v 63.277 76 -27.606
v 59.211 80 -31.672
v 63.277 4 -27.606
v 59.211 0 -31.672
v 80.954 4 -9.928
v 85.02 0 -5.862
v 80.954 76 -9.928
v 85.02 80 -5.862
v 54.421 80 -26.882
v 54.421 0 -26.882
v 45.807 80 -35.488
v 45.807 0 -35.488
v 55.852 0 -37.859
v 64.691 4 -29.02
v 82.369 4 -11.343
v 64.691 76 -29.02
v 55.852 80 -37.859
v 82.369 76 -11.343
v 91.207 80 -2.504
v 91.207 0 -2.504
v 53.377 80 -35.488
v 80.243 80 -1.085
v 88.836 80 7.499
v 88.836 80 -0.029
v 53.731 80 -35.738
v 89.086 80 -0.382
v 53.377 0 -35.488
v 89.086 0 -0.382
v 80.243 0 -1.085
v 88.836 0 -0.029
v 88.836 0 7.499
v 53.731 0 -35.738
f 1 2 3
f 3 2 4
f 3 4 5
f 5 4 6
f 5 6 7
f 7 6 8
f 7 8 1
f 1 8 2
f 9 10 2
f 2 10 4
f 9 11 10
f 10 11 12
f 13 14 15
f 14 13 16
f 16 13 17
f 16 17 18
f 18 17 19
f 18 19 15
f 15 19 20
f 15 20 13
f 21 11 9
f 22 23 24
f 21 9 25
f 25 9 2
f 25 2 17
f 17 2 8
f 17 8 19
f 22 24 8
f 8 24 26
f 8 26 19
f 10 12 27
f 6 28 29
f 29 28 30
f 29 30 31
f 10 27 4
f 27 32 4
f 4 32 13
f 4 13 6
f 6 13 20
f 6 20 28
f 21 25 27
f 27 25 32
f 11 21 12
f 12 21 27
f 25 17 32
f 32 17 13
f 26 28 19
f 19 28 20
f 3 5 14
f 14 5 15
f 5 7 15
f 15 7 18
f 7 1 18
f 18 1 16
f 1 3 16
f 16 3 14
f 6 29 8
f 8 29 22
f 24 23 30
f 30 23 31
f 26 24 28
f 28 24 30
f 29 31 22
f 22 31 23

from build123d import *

# Parameters (mm, degrees)
BOSS_EXTRUDE1_DEPTH = 80
SKETCH2_W           = 36.5
SKETCH2_H           = 80
CUT_EXTRUDE1_DEPTH  = 9
SKETCH3_W           = 50
SKETCH3_H           = 80
SKETCH3_W_2         = 25
SKETCH3_H_2         = 72
BOSS_EXTRUDE2_DEPTH = 2


with BuildPart() as part:
    # Sketch1 → Boss-Extrude1 (new body)
    with BuildSketch(Plane(origin=(0, 0, 0), x_dir=(1, 0, 0), z_dir=(0, 1, 0))):
        Polygon((89.086021447, 0.382365888), (91.207341791, 2.503686231), (55.852002731, 37.859025291), (53.730682388, 35.737704947), (53.377128997, 35.487704947), (45.806568717, 35.487704947), (88.836021447, -7.499362096), (88.836021447, 0.028812497), align=None)
    extrude(amount=BOSS_EXTRUDE1_DEPTH)

    # Sketch2 → Cut-Extrude1 (cut)
    with BuildSketch(Plane(origin=(46.855514011, 0, -46.855514011), x_dir=(-0.707106781, 0, -0.707106781), z_dir=(0.707106781, 0, -0.707106781))):
        with Locations((-37.722956362, 40)):
            Rectangle(SKETCH2_W, SKETCH2_H)
    extrude(amount=-CUT_EXTRUDE1_DEPTH, mode=Mode.SUBTRACT)

    # Sketch3 → Boss-Extrude2 (add)
    with BuildSketch(Plane(origin=(46.855514011, 0, -46.855514011), x_dir=(-0.707106781, 0, -0.707106781), z_dir=(0.707106781, 0, -0.707106781))):
        with Locations((-37.722956362, 40)):
            Rectangle(SKETCH3_W, SKETCH3_H)
        with Locations((-37.722956362, 40)):
            Rectangle(SKETCH3_W_2, SKETCH3_H_2, mode=Mode.SUBTRACT)
    extrude(amount=-BOSS_EXTRUDE2_DEPTH)


solid = part.part
